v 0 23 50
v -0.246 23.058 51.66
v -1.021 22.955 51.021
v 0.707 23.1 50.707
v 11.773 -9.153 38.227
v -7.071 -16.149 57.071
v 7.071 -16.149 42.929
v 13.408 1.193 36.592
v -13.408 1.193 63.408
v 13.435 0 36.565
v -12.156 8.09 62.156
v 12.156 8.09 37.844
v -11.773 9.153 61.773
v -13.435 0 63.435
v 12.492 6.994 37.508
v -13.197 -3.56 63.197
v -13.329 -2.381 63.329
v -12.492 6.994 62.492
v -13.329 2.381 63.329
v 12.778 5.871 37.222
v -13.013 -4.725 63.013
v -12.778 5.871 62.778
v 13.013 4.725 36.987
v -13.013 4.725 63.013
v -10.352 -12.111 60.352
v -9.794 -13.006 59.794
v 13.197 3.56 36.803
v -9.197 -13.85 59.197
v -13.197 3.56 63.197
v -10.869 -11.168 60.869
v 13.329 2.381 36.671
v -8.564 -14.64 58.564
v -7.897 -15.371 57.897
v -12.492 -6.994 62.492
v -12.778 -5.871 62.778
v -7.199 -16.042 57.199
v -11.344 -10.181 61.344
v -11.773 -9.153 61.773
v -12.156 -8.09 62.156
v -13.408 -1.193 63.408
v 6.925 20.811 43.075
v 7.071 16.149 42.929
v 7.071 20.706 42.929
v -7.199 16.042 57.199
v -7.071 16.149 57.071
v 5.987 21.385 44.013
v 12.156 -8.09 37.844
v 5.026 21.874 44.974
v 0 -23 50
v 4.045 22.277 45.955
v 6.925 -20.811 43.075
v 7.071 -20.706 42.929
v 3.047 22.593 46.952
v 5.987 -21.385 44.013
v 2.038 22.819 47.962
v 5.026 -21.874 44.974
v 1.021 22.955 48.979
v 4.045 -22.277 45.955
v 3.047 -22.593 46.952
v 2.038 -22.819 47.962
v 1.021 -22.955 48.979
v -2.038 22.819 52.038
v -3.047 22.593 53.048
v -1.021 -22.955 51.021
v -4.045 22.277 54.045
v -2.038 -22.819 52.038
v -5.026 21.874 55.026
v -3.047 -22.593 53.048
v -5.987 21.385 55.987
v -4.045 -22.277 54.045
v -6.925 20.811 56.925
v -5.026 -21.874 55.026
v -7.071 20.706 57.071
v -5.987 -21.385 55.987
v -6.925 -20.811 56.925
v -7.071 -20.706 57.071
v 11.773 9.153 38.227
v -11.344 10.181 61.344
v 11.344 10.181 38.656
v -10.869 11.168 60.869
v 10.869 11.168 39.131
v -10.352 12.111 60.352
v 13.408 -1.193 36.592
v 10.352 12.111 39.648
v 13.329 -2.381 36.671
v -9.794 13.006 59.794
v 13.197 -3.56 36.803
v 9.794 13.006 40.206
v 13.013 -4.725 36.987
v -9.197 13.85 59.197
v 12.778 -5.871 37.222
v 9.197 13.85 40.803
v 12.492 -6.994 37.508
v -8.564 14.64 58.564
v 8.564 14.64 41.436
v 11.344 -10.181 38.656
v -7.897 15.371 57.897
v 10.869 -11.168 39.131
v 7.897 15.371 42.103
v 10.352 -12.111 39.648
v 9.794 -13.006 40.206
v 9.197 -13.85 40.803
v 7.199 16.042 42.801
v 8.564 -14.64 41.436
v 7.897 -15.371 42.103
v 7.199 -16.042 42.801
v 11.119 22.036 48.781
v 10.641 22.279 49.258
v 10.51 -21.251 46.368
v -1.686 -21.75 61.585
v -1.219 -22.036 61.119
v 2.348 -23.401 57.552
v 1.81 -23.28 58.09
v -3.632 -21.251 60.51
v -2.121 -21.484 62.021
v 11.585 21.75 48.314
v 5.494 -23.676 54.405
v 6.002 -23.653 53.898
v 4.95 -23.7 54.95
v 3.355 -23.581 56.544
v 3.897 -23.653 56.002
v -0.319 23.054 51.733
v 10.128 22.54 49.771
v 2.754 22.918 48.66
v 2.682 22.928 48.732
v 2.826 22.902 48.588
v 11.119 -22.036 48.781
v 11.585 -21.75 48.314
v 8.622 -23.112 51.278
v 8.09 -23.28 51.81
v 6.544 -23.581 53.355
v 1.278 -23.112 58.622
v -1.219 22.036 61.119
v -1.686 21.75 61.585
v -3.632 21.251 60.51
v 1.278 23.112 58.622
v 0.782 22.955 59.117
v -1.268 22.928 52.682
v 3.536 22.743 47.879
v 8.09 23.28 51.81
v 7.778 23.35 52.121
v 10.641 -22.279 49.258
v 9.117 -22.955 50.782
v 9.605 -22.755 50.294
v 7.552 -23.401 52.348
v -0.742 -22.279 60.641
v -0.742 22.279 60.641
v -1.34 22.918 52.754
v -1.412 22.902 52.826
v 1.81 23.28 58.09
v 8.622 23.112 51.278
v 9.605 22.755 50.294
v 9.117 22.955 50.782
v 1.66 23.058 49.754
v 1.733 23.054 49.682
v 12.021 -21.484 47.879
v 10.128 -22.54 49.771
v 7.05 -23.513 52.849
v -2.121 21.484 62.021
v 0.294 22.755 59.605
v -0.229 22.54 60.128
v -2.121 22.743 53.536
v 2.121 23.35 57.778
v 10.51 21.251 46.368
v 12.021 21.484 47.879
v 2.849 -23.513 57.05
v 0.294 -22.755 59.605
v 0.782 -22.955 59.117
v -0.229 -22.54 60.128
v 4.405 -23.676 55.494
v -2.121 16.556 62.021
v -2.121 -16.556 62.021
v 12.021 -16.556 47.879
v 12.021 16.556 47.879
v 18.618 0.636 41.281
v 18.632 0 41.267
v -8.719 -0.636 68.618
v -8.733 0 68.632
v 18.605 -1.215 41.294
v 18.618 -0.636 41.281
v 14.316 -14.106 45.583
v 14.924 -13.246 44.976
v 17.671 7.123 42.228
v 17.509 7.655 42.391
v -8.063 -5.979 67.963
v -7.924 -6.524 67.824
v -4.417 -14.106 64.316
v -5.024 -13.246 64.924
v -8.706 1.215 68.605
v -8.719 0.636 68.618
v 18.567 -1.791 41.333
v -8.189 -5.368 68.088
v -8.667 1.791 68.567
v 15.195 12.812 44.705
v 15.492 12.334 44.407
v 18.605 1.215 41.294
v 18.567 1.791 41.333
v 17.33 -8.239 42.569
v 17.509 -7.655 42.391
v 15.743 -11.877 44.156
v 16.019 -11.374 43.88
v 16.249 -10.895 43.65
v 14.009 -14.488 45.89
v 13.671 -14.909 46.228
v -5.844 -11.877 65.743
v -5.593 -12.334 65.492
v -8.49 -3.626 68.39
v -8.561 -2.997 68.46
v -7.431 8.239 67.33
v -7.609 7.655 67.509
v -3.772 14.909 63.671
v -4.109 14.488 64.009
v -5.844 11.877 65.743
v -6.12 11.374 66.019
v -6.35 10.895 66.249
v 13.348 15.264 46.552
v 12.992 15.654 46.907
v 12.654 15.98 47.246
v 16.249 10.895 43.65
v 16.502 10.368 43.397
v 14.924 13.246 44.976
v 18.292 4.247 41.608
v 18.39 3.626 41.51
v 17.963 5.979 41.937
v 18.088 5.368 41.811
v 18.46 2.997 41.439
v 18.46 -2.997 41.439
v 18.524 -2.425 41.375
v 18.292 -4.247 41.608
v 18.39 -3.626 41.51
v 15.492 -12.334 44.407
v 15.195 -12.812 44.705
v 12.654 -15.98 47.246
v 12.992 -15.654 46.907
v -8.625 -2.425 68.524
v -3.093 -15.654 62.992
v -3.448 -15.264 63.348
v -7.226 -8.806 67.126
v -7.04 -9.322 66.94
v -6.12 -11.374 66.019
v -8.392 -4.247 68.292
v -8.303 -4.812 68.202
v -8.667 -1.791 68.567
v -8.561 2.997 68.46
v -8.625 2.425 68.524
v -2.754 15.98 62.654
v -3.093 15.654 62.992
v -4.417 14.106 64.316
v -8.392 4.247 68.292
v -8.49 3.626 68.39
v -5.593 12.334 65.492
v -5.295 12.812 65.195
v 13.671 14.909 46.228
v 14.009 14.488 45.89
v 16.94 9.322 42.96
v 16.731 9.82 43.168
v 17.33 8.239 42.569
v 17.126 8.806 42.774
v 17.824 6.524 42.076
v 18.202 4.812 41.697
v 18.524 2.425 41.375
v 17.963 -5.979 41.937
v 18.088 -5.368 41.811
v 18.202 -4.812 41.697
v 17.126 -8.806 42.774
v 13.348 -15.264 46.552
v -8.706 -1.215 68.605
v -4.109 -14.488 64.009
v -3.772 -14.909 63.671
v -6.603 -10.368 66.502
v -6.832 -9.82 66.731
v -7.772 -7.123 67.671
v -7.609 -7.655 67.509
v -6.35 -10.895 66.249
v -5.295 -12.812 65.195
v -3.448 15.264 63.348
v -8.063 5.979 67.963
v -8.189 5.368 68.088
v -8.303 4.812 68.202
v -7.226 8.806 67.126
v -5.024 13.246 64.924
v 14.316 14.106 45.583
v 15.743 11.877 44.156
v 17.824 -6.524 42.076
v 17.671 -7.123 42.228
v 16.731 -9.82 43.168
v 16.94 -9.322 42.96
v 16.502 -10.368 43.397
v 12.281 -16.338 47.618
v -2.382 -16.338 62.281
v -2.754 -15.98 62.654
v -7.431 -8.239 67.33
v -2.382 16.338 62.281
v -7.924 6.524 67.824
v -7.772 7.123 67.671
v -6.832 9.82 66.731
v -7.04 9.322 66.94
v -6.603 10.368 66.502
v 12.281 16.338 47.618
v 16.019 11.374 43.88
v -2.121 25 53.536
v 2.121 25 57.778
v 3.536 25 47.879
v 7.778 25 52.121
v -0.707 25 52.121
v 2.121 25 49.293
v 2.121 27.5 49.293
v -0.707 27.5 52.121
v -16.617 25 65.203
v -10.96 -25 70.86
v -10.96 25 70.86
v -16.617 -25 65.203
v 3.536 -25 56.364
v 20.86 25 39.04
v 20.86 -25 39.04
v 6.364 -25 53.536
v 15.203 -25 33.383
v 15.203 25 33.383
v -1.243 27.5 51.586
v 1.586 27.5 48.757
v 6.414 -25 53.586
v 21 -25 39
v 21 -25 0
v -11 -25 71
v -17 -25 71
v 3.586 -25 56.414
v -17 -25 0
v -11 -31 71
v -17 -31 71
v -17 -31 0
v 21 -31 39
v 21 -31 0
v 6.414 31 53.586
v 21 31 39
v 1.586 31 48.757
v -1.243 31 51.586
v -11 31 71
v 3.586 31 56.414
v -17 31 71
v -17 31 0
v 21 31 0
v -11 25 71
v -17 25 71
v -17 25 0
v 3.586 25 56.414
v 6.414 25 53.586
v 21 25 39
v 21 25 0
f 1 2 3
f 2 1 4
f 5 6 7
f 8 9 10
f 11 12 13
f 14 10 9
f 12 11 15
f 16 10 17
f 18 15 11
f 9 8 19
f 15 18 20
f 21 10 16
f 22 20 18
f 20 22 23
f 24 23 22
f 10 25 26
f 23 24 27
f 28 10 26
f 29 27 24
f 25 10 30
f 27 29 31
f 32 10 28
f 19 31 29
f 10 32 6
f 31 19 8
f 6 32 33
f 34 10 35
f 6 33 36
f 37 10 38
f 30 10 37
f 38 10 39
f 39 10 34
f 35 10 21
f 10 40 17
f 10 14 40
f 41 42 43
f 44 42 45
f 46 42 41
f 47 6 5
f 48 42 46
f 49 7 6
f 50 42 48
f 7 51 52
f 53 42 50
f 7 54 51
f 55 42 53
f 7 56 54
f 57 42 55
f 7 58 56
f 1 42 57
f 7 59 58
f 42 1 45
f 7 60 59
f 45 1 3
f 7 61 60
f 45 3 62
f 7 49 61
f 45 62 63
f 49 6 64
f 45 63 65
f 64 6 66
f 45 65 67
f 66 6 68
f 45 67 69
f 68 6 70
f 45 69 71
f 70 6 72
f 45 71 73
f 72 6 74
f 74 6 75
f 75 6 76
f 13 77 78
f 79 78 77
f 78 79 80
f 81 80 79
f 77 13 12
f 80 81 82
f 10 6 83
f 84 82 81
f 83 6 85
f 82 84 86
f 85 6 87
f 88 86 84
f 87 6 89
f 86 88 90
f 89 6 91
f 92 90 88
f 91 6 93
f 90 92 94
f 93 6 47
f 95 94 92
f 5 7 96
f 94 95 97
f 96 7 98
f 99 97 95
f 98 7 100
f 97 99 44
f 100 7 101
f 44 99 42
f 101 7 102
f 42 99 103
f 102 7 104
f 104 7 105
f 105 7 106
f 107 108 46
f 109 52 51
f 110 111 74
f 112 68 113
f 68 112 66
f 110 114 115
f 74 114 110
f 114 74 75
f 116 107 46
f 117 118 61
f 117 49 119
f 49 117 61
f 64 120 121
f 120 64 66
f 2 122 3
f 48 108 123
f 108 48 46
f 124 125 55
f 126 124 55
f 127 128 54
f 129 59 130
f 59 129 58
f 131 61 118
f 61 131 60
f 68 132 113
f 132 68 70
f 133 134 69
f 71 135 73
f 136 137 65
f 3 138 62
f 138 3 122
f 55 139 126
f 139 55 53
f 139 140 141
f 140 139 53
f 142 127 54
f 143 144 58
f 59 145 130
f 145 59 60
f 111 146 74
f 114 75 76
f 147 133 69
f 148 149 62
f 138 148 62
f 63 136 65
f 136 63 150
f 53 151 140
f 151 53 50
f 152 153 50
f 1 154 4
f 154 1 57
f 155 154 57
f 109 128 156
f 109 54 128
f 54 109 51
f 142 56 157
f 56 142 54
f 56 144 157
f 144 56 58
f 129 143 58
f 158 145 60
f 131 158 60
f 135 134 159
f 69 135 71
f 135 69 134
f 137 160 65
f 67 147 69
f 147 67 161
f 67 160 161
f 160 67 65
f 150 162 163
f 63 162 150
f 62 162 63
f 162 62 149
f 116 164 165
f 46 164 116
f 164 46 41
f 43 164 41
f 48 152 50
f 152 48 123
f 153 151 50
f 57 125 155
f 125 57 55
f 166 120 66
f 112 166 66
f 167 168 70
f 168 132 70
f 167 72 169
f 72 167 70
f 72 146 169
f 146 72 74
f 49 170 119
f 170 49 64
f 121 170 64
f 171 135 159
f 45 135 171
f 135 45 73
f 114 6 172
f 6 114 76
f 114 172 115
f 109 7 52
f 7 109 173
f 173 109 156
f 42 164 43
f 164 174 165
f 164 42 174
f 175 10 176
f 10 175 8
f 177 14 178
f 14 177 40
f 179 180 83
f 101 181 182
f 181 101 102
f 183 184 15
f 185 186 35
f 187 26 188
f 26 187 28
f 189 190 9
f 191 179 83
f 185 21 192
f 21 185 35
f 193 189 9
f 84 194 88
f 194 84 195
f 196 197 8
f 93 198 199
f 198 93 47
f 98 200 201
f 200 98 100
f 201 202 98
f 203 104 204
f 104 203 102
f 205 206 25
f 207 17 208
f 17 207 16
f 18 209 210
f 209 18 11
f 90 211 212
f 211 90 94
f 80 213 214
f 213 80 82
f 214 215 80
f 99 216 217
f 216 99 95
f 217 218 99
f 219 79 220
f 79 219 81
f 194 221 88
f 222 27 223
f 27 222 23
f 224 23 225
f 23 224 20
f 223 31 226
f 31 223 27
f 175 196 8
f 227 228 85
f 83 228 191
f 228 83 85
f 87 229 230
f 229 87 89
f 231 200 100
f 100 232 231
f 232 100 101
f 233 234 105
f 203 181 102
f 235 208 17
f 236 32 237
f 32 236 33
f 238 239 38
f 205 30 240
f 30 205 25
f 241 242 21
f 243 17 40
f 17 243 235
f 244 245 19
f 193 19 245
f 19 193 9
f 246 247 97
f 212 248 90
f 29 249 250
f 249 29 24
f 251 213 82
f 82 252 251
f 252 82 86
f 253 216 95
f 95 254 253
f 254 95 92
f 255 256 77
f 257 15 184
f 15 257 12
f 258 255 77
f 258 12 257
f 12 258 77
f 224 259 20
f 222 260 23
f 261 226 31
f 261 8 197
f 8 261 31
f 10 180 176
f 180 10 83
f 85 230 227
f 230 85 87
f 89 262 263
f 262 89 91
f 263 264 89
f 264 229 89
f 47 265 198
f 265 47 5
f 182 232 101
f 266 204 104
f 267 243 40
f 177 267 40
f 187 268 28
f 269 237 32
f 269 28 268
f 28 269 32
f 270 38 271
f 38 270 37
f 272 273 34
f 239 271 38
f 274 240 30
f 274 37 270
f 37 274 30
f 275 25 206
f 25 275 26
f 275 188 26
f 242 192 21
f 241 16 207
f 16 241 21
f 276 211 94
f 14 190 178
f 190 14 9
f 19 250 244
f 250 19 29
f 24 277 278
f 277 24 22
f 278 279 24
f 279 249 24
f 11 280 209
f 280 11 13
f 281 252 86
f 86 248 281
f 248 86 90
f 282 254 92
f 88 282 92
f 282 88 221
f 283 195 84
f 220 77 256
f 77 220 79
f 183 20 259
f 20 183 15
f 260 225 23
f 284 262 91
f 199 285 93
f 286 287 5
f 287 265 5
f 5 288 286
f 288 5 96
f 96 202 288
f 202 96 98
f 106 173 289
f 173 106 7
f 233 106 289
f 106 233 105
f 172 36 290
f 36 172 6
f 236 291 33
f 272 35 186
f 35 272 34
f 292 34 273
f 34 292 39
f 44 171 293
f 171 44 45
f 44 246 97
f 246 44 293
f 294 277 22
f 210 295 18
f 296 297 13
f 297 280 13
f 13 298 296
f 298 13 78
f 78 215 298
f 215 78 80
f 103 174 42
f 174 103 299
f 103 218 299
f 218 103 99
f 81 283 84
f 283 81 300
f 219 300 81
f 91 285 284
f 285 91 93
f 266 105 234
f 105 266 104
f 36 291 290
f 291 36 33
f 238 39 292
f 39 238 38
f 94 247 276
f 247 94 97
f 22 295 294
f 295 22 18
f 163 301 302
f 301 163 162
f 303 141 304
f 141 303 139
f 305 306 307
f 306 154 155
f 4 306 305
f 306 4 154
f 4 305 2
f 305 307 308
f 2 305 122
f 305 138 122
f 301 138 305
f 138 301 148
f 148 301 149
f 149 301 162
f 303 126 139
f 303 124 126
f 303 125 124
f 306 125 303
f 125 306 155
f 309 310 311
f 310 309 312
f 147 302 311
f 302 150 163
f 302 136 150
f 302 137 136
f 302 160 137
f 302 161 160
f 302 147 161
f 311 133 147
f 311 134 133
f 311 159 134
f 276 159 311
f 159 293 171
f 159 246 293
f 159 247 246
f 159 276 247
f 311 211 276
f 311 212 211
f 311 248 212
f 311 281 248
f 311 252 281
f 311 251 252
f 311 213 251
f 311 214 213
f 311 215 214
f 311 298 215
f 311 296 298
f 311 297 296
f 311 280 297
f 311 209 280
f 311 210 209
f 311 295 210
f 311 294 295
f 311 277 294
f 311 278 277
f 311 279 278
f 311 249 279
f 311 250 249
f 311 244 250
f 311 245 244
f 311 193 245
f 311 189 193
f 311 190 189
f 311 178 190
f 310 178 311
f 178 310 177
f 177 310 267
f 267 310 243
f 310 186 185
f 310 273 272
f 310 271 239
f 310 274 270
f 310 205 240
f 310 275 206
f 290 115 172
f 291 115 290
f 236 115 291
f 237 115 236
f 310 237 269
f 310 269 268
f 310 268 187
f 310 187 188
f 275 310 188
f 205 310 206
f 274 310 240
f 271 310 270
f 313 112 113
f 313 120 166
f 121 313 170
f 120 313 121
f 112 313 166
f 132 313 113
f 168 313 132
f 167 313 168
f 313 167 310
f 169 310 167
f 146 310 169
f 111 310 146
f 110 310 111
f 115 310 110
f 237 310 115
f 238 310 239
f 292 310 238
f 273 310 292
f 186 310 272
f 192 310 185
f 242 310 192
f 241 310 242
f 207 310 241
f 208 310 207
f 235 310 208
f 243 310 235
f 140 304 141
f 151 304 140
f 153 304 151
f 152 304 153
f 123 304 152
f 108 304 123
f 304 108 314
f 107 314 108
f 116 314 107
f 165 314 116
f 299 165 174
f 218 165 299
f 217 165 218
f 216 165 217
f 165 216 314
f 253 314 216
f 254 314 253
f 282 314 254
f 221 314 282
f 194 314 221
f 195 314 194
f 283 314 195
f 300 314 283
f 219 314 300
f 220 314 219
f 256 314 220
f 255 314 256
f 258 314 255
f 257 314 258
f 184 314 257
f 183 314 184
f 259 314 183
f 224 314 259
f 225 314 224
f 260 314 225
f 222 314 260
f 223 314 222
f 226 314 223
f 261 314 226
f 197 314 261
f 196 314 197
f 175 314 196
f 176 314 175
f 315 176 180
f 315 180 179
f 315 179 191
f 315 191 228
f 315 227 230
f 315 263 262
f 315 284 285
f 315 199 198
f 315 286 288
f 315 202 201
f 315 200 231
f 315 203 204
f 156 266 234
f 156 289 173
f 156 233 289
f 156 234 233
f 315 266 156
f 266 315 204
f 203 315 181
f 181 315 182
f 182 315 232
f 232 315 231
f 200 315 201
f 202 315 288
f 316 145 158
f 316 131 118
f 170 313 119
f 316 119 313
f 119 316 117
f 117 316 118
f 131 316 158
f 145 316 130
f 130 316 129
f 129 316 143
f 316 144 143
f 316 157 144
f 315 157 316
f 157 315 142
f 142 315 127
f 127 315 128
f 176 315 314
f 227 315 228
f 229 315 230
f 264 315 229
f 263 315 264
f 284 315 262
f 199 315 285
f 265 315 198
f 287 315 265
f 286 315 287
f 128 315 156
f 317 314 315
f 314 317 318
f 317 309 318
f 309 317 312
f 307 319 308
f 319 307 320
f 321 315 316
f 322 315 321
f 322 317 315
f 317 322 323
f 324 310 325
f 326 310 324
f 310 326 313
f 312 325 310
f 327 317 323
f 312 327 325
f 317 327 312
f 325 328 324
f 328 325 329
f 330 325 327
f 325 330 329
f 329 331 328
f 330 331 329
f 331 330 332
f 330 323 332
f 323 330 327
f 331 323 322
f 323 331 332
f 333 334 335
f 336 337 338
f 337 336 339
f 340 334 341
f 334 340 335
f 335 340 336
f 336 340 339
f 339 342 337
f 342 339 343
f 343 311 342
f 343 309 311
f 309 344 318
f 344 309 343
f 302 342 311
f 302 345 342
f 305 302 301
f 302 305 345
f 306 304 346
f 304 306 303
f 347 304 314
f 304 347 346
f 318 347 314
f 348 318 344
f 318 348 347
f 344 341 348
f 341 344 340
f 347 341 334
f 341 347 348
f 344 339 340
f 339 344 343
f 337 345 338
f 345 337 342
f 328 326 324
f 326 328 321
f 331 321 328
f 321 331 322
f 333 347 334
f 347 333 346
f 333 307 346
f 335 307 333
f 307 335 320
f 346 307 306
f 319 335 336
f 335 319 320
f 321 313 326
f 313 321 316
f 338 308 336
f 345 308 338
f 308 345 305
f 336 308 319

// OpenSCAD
$fn = 100;

$stand_x = 45;
$stand_y = 55;
$stand_h = 8;

$charger_int_radius_bottom = 38; //36
$charger_int_radius_top = 39.5;  //37.5


$charger_ext_radius_bottom = 46;
$charger_ext_radius_top = 49;


$charger_ext_h = 15;

$larg_1 = 20; // 18



translate([0, 0, 50])
rotate([0, 45, 0])
difference() {
    translate([0, 0, 3]) cube([$stand_x, $stand_y, $stand_h], center = true);

    union() {
        intersection() {
            cylinder(h = $charger_ext_h, r1= $charger_ext_radius_bottom / 2, r2 = $charger_ext_radius_top / 2);
            cube([$larg_1, 150, 50], center=true);
        }
        cylinder(h = $charger_ext_h, r1= $charger_int_radius_bottom / 2, r2 = $charger_int_radius_top / 2);  
        
        translate([0, 30, 5]) cube([8, 60, 8], center = true);
    }
}

difference() {
    union() {
        translate([21, -25-6, 0]) rotate([0,0,90]) cube([6, 38, 71]);
        translate([21, 25-3+3, 0]) rotate([0,0,90]) cube([6, 38, 71]);
    }
    translate([25,-40,35])    rotate([0, -45, 0])cube([50, 80, 60]);
       translate([3, 10, 53]) rotate([0, 45,0]) cube([4, 70, 8], center = true);
    

}
